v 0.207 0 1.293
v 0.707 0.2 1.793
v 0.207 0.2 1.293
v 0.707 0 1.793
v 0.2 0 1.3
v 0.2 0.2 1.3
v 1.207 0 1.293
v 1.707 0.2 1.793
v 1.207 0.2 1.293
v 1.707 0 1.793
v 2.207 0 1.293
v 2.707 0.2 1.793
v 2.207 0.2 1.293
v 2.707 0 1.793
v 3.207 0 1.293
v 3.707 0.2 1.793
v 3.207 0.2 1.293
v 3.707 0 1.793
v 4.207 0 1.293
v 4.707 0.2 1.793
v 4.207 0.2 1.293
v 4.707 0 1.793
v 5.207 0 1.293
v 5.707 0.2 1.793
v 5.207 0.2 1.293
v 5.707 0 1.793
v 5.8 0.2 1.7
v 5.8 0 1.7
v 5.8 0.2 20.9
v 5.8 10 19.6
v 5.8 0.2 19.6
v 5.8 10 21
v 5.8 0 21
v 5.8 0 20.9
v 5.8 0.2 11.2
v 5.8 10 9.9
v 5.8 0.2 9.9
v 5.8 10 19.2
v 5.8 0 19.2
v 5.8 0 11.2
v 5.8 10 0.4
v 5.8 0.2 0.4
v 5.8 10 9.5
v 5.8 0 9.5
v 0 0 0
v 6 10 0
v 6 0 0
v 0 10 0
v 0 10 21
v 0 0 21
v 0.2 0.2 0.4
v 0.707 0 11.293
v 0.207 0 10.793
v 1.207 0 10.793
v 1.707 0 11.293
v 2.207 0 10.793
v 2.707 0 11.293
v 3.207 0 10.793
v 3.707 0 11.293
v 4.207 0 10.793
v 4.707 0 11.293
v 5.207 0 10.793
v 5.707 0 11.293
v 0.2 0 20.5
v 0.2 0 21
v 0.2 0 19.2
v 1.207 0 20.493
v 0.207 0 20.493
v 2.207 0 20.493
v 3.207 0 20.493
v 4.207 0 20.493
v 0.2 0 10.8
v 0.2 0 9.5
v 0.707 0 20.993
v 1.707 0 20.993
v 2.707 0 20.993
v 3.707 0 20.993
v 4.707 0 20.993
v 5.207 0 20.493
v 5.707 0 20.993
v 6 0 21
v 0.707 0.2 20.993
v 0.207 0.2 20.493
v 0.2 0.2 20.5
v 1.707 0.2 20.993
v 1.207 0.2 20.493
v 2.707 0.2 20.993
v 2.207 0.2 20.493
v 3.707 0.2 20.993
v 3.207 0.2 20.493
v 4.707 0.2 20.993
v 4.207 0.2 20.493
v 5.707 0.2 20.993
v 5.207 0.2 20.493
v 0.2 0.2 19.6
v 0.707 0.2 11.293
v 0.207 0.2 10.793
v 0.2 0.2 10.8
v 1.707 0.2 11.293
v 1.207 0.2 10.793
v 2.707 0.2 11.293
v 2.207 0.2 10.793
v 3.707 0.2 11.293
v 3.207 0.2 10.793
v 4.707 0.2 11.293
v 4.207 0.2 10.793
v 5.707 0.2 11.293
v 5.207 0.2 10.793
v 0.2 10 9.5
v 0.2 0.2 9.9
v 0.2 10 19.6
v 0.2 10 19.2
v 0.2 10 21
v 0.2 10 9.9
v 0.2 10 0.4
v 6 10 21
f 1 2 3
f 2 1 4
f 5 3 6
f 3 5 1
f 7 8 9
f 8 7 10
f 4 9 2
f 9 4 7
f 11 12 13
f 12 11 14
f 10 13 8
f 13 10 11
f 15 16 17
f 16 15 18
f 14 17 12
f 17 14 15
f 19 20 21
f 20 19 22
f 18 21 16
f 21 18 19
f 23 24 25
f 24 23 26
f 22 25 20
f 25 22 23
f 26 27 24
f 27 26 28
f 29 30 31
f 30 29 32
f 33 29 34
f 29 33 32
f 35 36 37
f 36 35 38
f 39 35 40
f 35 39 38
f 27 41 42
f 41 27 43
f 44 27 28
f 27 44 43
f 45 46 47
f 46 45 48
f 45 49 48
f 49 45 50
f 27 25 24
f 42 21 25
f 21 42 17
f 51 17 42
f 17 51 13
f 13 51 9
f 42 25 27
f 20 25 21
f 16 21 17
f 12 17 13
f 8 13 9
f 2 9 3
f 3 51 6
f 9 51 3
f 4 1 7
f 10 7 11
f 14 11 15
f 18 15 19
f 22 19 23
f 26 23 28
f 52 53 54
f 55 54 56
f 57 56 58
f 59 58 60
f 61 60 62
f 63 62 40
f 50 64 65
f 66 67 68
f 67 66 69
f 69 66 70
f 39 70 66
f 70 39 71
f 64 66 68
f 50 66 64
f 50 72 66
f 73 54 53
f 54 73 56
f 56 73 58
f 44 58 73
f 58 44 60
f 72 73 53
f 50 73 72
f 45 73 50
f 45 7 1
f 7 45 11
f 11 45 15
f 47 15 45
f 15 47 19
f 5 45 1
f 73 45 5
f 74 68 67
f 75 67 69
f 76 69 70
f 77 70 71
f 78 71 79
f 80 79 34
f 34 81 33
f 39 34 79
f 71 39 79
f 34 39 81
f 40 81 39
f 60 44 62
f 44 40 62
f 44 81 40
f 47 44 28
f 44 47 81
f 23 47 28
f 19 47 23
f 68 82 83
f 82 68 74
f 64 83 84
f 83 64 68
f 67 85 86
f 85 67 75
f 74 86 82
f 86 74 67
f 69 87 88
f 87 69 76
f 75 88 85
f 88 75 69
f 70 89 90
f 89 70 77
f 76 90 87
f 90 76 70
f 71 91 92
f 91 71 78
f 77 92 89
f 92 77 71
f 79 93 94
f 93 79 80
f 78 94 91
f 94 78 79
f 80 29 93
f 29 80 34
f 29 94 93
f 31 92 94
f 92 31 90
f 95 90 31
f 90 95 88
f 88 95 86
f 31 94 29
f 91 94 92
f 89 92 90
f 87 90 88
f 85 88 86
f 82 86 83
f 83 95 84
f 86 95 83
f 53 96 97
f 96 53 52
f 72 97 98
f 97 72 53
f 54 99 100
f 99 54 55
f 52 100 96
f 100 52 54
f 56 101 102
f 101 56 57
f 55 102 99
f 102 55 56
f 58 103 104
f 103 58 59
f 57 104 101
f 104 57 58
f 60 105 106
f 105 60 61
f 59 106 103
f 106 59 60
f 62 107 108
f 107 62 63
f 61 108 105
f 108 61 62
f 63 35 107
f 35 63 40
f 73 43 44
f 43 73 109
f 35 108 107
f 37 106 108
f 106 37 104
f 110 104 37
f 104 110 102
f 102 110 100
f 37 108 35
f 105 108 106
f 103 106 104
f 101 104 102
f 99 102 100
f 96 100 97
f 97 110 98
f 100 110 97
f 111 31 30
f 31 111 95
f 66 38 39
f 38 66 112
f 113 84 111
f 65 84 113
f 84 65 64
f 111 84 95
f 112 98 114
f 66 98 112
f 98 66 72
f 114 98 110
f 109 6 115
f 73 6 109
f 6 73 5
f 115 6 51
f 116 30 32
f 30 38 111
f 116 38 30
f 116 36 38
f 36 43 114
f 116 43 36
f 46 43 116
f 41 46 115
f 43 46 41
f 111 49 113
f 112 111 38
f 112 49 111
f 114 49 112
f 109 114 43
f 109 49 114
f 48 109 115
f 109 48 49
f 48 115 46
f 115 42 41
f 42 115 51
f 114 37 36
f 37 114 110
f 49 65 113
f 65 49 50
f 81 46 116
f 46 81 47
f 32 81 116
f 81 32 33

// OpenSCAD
h_top = 11.5;
h_bottom = 9.5;
n_blocks = 13;
depth = 10;
//                Top of of the cathedral
// <----------------------------------------------------


floor_thickness = 4;
cathedral_width = 5.6;

//                Height of the Red Book

wall_thickness = 0.2;
module floor_decor() {
  difference() {
    cube([wall_thickness + cathedral_width, 0.2, 2.0]);
    for(i=[0:6]) { translate([-0.5 + i,-0.2,2.0]) rotate([0,45,0]) cube([1,1,1]);}
  }
}
module floors() {
  translate([wall_thickness,0, h_bottom+h_top-1.8]) cube([cathedral_width,depth,.4]);
  translate([0,0,h_bottom+h_top-1.8]) floor_decor();
  cube([wall_thickness + cathedral_width,depth,.4]);
  translate([wall_thickness,0, h_bottom]) cube([cathedral_width,depth,.4]);
  translate([0,0,h_bottom]) floor_decor();
  cube([wall_thickness + cathedral_width,depth,.4]);
  floor_decor();
}

floors();

// <---------------------------------------------------




cm_per_block = h_bottom/n_blocks;
cube([wall_thickness, 10, h_bottom+h_top]);
translate([cathedral_width + wall_thickness ,0,0])
  cube([wall_thickness, 10, h_bottom+h_top]);
// ==========
